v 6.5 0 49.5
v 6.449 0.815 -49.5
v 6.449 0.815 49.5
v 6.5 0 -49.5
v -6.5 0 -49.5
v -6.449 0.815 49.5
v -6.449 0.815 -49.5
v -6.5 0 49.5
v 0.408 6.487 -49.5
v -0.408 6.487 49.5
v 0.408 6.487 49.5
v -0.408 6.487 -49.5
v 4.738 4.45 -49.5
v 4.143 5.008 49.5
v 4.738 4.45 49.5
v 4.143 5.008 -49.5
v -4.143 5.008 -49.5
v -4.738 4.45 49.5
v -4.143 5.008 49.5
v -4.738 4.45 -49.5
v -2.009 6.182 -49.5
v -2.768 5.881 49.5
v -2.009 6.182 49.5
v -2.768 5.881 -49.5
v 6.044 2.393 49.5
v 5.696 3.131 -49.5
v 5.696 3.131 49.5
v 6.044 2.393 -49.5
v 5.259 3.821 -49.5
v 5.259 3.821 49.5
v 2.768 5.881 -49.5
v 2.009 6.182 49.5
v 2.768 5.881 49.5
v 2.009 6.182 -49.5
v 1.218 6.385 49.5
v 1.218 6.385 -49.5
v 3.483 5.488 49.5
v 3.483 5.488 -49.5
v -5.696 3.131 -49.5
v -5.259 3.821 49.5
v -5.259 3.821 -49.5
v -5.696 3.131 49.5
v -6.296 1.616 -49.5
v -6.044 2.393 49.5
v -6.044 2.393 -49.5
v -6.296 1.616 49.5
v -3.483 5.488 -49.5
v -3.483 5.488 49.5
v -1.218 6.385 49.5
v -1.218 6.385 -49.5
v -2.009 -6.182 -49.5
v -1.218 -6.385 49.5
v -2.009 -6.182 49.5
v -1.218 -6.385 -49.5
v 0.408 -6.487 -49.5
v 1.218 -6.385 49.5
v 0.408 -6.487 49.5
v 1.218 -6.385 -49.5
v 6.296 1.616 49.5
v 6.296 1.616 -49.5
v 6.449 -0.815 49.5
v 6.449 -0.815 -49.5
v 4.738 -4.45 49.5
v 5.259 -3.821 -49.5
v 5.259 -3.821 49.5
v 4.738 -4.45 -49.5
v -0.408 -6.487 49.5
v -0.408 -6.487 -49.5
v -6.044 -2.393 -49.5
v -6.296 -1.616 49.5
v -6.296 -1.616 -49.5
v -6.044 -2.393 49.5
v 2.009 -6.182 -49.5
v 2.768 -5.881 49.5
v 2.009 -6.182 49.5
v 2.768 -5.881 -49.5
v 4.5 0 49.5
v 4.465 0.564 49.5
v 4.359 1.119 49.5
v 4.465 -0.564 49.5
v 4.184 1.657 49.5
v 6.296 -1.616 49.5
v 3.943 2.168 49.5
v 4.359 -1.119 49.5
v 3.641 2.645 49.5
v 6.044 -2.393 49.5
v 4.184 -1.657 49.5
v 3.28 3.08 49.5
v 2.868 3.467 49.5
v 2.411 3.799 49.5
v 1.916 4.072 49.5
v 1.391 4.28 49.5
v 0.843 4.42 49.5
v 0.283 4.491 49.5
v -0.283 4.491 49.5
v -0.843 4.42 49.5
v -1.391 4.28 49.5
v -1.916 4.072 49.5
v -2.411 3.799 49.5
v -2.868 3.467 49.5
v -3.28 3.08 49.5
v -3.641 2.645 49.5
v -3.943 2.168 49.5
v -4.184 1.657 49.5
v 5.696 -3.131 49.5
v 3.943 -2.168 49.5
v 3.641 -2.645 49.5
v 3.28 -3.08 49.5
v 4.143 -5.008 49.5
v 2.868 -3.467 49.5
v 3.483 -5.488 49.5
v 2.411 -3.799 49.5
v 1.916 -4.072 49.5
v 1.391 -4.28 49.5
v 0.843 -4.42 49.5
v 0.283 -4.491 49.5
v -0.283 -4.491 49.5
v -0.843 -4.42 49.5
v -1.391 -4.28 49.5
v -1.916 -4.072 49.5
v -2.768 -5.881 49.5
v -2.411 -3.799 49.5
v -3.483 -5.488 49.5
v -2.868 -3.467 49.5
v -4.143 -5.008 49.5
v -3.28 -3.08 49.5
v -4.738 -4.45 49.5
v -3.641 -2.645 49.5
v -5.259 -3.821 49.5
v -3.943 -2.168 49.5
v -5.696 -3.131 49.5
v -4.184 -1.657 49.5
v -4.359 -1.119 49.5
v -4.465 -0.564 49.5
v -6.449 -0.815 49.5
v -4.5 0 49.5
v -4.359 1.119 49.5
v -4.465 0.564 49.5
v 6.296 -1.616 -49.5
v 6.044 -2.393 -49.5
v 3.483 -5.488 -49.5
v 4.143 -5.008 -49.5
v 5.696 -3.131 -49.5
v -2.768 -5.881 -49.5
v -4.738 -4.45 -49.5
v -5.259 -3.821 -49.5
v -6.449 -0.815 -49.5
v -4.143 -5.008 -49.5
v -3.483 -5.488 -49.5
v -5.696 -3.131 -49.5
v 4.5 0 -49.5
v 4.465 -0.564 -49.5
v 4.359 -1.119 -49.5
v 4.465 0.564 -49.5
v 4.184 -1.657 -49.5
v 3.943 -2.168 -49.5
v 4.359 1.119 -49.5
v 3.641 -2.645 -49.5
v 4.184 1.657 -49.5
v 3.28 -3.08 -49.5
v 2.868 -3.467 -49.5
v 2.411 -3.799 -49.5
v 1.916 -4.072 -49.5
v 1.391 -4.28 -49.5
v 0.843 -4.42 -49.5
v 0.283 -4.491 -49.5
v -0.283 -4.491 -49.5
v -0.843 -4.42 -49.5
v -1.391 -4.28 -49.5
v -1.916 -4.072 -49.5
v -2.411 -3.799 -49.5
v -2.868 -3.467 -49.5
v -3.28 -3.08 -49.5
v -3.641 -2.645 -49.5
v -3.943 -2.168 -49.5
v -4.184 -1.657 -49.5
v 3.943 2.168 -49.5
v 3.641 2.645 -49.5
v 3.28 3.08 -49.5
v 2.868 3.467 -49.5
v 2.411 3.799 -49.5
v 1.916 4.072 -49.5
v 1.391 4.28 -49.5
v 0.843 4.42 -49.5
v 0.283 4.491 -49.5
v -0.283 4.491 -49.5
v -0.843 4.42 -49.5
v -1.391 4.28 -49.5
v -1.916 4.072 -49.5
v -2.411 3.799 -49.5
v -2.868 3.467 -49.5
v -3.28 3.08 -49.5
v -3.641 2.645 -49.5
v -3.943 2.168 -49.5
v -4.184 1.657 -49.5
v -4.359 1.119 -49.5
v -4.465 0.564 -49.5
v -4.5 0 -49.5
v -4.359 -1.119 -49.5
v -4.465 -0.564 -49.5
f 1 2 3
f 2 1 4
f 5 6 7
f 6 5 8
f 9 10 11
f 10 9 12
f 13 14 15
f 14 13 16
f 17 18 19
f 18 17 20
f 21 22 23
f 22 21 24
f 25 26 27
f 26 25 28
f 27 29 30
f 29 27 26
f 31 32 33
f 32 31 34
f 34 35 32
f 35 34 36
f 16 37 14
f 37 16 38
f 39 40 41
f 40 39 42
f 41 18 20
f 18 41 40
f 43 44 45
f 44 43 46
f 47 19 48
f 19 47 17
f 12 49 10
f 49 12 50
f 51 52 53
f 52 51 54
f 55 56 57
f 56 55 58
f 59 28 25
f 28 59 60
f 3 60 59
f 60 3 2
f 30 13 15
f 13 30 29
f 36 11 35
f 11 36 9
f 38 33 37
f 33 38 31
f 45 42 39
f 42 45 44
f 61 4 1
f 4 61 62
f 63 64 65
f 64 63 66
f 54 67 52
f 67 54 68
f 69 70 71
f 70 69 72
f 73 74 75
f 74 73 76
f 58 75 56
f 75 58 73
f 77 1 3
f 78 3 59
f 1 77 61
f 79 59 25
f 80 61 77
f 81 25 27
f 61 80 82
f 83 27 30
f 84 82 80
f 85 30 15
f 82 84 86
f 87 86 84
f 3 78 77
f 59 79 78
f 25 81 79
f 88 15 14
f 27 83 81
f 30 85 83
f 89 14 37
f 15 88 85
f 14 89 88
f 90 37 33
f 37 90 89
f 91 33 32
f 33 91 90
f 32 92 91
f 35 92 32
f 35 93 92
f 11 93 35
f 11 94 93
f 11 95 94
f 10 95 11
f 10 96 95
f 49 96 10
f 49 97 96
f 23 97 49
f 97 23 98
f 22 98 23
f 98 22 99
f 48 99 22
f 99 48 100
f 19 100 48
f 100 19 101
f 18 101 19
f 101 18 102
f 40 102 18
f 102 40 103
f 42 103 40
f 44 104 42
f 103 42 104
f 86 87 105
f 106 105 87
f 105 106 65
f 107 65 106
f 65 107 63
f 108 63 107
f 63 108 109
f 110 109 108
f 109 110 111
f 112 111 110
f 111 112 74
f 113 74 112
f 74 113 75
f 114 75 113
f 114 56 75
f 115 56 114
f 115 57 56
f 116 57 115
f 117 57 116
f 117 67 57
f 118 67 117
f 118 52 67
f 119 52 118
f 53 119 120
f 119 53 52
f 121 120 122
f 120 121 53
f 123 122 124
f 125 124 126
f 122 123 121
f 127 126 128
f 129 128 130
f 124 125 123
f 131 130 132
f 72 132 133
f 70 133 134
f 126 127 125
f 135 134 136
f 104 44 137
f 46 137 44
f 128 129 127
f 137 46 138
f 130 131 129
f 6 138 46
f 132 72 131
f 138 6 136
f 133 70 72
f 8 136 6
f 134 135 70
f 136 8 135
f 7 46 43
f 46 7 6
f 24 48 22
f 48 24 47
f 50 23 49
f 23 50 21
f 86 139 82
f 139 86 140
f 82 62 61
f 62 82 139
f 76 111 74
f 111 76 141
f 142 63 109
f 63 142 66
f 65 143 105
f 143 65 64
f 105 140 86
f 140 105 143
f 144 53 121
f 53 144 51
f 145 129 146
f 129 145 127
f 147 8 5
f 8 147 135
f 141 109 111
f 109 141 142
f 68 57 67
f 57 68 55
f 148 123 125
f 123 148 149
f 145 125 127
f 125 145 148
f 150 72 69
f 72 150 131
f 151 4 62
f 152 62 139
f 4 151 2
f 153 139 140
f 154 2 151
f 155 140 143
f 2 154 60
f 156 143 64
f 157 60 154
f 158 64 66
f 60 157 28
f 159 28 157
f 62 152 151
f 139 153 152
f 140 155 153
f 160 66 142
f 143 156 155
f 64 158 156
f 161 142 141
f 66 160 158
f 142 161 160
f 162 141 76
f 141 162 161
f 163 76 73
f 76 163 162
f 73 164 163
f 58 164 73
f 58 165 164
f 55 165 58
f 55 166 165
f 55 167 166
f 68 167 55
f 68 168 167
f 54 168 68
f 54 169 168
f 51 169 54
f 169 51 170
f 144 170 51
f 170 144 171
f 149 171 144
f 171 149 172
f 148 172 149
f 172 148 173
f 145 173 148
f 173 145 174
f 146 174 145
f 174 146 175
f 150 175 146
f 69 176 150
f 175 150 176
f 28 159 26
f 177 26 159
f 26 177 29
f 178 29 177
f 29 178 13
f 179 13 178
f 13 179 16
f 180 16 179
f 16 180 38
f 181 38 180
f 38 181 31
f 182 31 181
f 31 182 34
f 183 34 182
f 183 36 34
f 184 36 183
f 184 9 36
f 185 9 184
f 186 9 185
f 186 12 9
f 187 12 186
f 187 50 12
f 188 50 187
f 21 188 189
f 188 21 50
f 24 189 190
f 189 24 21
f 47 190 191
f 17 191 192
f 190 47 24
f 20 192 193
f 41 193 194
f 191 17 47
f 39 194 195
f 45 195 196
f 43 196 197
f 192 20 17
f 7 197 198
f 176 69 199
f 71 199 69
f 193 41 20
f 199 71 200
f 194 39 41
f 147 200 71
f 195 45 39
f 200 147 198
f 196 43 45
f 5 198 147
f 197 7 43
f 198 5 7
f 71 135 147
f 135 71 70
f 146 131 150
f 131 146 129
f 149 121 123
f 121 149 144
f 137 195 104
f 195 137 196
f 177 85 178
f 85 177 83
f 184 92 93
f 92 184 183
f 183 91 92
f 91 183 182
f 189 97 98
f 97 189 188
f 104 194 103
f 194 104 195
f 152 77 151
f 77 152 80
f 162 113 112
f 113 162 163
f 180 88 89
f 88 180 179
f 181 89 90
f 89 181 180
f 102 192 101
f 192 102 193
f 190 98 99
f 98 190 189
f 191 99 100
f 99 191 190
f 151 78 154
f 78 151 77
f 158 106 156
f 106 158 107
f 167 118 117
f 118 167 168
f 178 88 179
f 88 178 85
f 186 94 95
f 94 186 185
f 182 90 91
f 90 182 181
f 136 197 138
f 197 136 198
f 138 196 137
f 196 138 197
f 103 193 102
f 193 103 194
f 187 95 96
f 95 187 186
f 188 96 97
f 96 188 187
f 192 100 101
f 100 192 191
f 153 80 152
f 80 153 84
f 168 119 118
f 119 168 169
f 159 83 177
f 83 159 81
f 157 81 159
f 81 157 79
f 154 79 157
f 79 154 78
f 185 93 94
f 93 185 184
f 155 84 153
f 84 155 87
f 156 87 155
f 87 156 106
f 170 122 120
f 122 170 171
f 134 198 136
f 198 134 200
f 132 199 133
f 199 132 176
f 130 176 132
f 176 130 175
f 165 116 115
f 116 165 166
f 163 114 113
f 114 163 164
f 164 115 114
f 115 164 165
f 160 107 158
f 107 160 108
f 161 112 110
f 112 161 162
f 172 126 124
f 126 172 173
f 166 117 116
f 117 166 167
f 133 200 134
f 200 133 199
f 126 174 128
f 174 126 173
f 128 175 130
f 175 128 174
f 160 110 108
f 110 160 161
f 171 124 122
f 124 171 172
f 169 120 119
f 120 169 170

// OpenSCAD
$fn = 50;


difference() {
	union() {
		translate(v = [0, 0, -49.5000000000]) {
			cylinder(h = 99, r = 6.5000000000);
		}
	}
	union() {
		translate(v = [0, 0, -100.0000000000]) {
			cylinder(h = 200, r = 4.5000000000);
		}
	}
}
